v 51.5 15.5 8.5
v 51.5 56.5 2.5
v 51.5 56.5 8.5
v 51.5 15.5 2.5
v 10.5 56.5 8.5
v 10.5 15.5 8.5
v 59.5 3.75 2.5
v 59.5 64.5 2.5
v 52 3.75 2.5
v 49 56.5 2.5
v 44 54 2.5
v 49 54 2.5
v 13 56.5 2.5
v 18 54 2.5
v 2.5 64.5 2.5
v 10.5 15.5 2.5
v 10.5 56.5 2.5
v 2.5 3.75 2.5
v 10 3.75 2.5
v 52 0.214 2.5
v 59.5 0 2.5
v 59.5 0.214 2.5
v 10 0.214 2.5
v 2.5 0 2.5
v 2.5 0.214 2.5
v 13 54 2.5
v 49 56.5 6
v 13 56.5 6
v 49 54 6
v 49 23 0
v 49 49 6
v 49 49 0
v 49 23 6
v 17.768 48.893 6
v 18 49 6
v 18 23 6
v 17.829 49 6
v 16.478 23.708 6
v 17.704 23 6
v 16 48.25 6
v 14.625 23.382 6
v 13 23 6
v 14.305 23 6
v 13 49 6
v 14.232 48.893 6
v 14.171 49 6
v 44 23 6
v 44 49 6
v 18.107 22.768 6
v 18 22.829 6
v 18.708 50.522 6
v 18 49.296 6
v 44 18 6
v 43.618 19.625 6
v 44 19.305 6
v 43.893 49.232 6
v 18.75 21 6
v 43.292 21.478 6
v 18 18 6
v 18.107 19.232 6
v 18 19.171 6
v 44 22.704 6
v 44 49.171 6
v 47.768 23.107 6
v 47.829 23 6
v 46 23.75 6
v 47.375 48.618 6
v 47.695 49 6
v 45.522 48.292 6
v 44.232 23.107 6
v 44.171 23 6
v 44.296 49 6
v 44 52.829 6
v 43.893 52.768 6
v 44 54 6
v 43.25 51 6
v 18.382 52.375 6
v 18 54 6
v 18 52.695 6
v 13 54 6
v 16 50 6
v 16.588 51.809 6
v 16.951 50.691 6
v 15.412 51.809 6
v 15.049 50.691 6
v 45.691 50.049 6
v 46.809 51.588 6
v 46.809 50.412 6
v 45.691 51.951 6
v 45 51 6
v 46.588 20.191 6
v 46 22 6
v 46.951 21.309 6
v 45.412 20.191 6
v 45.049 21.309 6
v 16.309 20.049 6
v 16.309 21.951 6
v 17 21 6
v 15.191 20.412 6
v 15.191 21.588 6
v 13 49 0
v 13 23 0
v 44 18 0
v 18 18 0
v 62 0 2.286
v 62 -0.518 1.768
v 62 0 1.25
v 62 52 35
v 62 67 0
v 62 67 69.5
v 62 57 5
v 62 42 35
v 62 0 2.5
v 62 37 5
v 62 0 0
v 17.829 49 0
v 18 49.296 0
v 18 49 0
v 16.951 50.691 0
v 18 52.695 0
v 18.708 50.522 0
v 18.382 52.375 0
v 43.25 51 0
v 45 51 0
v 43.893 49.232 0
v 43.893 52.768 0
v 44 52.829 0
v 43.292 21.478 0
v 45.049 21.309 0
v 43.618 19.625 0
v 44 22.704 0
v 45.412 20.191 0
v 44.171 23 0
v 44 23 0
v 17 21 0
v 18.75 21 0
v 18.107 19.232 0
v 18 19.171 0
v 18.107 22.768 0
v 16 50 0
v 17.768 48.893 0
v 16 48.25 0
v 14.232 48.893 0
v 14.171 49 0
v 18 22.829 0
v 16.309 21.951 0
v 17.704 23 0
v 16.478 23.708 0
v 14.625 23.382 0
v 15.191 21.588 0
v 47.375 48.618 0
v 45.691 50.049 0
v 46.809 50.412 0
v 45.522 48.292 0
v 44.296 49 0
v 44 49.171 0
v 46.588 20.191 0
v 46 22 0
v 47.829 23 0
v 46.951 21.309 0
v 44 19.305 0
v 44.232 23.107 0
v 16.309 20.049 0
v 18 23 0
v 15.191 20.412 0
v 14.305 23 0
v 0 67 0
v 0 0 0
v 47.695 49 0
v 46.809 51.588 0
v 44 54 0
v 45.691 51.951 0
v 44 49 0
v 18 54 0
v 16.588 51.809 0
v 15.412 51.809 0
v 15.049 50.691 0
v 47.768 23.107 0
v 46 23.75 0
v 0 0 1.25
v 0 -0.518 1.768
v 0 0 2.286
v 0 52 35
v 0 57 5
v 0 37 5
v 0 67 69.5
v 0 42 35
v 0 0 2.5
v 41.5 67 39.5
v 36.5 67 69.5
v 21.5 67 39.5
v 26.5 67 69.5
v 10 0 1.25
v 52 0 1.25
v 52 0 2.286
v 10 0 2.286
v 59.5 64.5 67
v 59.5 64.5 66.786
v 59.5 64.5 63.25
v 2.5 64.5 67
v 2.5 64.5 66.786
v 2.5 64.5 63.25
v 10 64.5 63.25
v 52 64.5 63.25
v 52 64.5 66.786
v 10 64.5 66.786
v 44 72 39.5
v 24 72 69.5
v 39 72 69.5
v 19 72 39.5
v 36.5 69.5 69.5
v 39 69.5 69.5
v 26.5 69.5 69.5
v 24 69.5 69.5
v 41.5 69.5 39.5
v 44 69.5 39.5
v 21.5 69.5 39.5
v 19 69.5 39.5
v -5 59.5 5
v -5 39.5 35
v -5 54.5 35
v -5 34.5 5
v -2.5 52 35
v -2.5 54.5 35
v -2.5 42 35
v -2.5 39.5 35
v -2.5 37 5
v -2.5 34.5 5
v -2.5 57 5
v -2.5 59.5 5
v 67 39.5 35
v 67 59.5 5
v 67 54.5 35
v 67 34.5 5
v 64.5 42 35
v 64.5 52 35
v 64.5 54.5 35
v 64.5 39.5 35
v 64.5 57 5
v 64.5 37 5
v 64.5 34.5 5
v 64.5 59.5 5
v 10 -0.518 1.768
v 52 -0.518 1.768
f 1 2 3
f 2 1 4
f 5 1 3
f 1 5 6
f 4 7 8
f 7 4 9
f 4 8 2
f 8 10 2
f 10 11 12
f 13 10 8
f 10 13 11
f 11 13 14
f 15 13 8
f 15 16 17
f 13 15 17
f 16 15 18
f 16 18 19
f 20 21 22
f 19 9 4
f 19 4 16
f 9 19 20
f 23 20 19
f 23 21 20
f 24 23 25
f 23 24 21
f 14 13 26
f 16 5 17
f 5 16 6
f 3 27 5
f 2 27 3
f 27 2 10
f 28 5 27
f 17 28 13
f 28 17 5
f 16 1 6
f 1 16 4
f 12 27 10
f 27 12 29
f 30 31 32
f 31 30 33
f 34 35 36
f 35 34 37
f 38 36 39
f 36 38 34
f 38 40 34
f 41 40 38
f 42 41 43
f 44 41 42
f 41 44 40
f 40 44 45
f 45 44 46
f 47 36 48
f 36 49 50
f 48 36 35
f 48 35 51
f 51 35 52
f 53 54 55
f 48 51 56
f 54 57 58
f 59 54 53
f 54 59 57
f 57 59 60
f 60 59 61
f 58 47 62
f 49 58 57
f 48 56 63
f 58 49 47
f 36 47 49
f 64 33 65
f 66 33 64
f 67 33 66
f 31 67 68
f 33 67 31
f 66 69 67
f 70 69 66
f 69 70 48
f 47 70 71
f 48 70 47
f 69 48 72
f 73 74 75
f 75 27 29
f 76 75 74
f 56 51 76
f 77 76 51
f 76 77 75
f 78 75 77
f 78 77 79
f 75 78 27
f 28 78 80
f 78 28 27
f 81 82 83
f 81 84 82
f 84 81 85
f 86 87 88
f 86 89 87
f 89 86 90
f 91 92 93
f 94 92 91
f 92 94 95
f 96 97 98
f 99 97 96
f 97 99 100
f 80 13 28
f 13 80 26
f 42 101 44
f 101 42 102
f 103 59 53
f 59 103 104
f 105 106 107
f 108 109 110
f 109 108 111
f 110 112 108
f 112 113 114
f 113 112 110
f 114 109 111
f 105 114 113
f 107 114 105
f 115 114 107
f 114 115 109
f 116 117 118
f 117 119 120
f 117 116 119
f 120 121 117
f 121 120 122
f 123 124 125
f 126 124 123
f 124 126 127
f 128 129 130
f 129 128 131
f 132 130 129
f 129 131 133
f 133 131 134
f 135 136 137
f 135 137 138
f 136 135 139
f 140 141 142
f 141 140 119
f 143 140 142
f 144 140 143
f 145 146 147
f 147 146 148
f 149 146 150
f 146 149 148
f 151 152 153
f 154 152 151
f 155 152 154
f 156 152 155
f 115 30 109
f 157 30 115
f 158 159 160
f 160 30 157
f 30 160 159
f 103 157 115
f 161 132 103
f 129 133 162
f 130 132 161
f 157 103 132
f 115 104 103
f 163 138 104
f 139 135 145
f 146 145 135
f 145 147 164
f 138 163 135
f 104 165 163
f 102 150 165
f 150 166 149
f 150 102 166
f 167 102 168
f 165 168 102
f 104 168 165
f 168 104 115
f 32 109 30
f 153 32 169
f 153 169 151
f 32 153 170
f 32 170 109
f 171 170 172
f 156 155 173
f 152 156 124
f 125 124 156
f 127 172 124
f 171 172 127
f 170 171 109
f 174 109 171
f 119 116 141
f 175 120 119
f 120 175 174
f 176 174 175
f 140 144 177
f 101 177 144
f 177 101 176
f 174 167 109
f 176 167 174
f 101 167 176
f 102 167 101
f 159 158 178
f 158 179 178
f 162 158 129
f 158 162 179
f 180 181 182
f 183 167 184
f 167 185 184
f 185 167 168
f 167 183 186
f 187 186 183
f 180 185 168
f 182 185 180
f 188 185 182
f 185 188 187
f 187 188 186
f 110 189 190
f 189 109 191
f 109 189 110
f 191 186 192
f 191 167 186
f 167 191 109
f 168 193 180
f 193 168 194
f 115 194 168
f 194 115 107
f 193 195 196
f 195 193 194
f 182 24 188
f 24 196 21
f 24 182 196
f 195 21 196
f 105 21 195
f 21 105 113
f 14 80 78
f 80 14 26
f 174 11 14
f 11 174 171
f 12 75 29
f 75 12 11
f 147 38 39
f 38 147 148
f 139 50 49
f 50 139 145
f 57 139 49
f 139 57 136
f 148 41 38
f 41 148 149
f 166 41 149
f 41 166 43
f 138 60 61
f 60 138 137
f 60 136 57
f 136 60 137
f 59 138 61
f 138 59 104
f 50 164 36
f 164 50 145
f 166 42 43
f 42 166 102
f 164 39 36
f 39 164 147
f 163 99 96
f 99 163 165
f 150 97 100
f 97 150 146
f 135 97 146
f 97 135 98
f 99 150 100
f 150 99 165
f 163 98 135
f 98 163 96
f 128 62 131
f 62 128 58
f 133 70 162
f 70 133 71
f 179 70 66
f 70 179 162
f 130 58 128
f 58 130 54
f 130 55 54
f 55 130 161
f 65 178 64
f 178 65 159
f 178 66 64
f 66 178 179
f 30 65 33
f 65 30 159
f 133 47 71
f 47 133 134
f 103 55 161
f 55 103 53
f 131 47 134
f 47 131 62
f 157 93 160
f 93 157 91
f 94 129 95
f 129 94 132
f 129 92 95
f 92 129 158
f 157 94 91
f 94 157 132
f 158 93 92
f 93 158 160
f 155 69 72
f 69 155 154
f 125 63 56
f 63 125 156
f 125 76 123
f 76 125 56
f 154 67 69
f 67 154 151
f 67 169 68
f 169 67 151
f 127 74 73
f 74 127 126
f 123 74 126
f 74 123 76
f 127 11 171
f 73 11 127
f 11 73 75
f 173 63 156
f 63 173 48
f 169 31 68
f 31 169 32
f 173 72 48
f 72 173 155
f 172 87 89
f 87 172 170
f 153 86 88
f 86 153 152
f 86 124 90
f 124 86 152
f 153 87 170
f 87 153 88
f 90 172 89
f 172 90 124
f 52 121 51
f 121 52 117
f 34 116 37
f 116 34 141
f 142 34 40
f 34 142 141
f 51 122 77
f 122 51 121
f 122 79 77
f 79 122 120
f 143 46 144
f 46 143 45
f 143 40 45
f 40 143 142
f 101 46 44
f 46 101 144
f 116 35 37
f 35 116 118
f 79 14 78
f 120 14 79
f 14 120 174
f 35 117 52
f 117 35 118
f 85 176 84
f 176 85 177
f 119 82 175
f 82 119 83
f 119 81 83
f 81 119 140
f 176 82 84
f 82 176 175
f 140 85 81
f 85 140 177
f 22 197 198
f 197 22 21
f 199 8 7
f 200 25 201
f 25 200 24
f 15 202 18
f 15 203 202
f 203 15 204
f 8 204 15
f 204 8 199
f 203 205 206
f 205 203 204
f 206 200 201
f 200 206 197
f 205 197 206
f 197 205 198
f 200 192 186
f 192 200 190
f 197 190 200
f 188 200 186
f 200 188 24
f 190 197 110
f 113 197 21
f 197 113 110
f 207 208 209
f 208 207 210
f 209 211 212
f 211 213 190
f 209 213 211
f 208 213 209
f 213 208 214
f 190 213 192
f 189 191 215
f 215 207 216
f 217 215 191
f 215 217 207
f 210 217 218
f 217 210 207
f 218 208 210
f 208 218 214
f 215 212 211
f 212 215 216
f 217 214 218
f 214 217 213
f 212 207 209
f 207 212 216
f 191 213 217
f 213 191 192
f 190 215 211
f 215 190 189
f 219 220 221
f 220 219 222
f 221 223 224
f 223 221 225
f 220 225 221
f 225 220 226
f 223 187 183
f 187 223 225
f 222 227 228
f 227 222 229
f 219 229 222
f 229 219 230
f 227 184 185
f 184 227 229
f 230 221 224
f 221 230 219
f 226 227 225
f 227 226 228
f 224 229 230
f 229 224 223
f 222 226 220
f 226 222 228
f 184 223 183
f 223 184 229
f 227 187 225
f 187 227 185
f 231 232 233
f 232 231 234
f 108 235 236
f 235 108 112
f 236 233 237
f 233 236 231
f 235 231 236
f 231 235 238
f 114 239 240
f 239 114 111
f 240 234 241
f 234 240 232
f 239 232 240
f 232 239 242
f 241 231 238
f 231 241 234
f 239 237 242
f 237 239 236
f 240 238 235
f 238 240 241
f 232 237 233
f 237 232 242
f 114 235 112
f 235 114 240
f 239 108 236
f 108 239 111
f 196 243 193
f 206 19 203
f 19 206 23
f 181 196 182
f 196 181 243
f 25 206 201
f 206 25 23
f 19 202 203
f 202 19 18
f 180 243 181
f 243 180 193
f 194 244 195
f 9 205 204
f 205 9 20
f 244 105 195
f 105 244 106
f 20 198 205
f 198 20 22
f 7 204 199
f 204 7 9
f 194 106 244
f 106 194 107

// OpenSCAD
// file: camera mounting plate.scad
//This is a flat mounting plate for a Raspberry Pi HQ camera

module piHQcameraMountingPlate(){
    //Camera plate
    difference() {
        cube([62,67,2.5],false); 
        translate([13,18,0]){
            cube([36,36,2.5],false);
        }
        translate([20,54,0]){
            rotate([45,0,0]) cube([22,4,3.5],false); //extra cable space
        }
    }

    //Recess for camera
    difference() {
        translate([10.5,15.5,2.5]){
            cube([41,41,6],false);
        }
        translate([13,18,2.5]){
            cube([36,38.5,3.5],false); //slot for cable
        }
    }



    //screw pillars
    module cameraScrewPillar(angle=0){
        rotate(angle){
            difference() {
                union(){
                    cylinder(6,2.75,2.75,false);
                    translate([-3,-3,0]) linear_extrude(6) polygon(points=[[5,5],[5,0],[0,0],[0,5]]); 
                }
                cylinder(6,1,1,false);
            }
        } 
    }

    translate([16,21,0]){
        cameraScrewPillar(0);
    }
    translate([46,21,0]){
        cameraScrewPillar(90);
    }
    translate([46,51,0]){
        cameraScrewPillar(180);
    }
    translate([16,51,0]){
        cameraScrewPillar(270);
    }
}
// file: slide-locating.scad
// Slide locating foot and shoe components for handles
//vHeight = total height of assembly

module locatingShoe(vHeight=5){
    difference() { //shoe
        linear_extrude(height=vHeight) polygon(points=[[5,5],[5,35],[35,30],[35,10]]); 
	    linear_extrude(height=2.5) polygon(points=[[5,7.5],[5,32.5],[35,27.5],[35,12.5]]);
	    translate([0,0,2.5]) linear_extrude(height=2.5) polygon(points=[[5,10],[5,30],[35,25],[35,15]]);
    }
}

module locatingFoot(vHeight=5){
    difference() { //foot
        linear_extrude(height=vHeight) polygon(points=[[5,5],[5,35],[35,30],[35,10]]); 
	    locatingShoe();
    }
}
// main file
//Raspberry Pi handheld camera master file

//locating shoe and foot
include <./slide-locating.scad>;
//Camera front plate
include <./camera mounting plate.scad>;

//Draw a camera mounting plate
piHQcameraMountingPlate();

//Add a frame base plate and sides
longFaceLength = sqrt((67*67)*2);
difference() {
    difference() {
        cube([62,67,69.5],false); 
	    translate([2.5,0,0]){
            cube([57,64.5,69.5],false);
        }
    }
    translate([0,0,2.5]){
        rotate([45,0,0]) cube([62,longFaceLength,67],false);
    }
}
//Add a couple of flat bits for the Pi to locate on
translate([0,1.25,0])rotate([45,0,0]) cube([10,longFaceLength-2.5,2.5],false);
translate([52,1.25,0]) rotate([45,0,0]) cube([10,longFaceLength-2.5,2.5],false);

//add a locating foot to the bottom
translate([51.5,72,34.5]) color("green") rotate([90,-90,0]) locatingFoot();

//add a locating foot to the RHS
//translate([-5,32,40]) color("green") rotate([0,90,0]) locatingFoot();
translate([-5,27,0]) color("green") mirror([1,0,0]) rotate([0,-90,0]) locatingFoot();

//add a locating foot to the LHS
translate([67,67,0]) color("green") mirror([1,0,0]) rotate([90,-90,90]) locatingFoot();
